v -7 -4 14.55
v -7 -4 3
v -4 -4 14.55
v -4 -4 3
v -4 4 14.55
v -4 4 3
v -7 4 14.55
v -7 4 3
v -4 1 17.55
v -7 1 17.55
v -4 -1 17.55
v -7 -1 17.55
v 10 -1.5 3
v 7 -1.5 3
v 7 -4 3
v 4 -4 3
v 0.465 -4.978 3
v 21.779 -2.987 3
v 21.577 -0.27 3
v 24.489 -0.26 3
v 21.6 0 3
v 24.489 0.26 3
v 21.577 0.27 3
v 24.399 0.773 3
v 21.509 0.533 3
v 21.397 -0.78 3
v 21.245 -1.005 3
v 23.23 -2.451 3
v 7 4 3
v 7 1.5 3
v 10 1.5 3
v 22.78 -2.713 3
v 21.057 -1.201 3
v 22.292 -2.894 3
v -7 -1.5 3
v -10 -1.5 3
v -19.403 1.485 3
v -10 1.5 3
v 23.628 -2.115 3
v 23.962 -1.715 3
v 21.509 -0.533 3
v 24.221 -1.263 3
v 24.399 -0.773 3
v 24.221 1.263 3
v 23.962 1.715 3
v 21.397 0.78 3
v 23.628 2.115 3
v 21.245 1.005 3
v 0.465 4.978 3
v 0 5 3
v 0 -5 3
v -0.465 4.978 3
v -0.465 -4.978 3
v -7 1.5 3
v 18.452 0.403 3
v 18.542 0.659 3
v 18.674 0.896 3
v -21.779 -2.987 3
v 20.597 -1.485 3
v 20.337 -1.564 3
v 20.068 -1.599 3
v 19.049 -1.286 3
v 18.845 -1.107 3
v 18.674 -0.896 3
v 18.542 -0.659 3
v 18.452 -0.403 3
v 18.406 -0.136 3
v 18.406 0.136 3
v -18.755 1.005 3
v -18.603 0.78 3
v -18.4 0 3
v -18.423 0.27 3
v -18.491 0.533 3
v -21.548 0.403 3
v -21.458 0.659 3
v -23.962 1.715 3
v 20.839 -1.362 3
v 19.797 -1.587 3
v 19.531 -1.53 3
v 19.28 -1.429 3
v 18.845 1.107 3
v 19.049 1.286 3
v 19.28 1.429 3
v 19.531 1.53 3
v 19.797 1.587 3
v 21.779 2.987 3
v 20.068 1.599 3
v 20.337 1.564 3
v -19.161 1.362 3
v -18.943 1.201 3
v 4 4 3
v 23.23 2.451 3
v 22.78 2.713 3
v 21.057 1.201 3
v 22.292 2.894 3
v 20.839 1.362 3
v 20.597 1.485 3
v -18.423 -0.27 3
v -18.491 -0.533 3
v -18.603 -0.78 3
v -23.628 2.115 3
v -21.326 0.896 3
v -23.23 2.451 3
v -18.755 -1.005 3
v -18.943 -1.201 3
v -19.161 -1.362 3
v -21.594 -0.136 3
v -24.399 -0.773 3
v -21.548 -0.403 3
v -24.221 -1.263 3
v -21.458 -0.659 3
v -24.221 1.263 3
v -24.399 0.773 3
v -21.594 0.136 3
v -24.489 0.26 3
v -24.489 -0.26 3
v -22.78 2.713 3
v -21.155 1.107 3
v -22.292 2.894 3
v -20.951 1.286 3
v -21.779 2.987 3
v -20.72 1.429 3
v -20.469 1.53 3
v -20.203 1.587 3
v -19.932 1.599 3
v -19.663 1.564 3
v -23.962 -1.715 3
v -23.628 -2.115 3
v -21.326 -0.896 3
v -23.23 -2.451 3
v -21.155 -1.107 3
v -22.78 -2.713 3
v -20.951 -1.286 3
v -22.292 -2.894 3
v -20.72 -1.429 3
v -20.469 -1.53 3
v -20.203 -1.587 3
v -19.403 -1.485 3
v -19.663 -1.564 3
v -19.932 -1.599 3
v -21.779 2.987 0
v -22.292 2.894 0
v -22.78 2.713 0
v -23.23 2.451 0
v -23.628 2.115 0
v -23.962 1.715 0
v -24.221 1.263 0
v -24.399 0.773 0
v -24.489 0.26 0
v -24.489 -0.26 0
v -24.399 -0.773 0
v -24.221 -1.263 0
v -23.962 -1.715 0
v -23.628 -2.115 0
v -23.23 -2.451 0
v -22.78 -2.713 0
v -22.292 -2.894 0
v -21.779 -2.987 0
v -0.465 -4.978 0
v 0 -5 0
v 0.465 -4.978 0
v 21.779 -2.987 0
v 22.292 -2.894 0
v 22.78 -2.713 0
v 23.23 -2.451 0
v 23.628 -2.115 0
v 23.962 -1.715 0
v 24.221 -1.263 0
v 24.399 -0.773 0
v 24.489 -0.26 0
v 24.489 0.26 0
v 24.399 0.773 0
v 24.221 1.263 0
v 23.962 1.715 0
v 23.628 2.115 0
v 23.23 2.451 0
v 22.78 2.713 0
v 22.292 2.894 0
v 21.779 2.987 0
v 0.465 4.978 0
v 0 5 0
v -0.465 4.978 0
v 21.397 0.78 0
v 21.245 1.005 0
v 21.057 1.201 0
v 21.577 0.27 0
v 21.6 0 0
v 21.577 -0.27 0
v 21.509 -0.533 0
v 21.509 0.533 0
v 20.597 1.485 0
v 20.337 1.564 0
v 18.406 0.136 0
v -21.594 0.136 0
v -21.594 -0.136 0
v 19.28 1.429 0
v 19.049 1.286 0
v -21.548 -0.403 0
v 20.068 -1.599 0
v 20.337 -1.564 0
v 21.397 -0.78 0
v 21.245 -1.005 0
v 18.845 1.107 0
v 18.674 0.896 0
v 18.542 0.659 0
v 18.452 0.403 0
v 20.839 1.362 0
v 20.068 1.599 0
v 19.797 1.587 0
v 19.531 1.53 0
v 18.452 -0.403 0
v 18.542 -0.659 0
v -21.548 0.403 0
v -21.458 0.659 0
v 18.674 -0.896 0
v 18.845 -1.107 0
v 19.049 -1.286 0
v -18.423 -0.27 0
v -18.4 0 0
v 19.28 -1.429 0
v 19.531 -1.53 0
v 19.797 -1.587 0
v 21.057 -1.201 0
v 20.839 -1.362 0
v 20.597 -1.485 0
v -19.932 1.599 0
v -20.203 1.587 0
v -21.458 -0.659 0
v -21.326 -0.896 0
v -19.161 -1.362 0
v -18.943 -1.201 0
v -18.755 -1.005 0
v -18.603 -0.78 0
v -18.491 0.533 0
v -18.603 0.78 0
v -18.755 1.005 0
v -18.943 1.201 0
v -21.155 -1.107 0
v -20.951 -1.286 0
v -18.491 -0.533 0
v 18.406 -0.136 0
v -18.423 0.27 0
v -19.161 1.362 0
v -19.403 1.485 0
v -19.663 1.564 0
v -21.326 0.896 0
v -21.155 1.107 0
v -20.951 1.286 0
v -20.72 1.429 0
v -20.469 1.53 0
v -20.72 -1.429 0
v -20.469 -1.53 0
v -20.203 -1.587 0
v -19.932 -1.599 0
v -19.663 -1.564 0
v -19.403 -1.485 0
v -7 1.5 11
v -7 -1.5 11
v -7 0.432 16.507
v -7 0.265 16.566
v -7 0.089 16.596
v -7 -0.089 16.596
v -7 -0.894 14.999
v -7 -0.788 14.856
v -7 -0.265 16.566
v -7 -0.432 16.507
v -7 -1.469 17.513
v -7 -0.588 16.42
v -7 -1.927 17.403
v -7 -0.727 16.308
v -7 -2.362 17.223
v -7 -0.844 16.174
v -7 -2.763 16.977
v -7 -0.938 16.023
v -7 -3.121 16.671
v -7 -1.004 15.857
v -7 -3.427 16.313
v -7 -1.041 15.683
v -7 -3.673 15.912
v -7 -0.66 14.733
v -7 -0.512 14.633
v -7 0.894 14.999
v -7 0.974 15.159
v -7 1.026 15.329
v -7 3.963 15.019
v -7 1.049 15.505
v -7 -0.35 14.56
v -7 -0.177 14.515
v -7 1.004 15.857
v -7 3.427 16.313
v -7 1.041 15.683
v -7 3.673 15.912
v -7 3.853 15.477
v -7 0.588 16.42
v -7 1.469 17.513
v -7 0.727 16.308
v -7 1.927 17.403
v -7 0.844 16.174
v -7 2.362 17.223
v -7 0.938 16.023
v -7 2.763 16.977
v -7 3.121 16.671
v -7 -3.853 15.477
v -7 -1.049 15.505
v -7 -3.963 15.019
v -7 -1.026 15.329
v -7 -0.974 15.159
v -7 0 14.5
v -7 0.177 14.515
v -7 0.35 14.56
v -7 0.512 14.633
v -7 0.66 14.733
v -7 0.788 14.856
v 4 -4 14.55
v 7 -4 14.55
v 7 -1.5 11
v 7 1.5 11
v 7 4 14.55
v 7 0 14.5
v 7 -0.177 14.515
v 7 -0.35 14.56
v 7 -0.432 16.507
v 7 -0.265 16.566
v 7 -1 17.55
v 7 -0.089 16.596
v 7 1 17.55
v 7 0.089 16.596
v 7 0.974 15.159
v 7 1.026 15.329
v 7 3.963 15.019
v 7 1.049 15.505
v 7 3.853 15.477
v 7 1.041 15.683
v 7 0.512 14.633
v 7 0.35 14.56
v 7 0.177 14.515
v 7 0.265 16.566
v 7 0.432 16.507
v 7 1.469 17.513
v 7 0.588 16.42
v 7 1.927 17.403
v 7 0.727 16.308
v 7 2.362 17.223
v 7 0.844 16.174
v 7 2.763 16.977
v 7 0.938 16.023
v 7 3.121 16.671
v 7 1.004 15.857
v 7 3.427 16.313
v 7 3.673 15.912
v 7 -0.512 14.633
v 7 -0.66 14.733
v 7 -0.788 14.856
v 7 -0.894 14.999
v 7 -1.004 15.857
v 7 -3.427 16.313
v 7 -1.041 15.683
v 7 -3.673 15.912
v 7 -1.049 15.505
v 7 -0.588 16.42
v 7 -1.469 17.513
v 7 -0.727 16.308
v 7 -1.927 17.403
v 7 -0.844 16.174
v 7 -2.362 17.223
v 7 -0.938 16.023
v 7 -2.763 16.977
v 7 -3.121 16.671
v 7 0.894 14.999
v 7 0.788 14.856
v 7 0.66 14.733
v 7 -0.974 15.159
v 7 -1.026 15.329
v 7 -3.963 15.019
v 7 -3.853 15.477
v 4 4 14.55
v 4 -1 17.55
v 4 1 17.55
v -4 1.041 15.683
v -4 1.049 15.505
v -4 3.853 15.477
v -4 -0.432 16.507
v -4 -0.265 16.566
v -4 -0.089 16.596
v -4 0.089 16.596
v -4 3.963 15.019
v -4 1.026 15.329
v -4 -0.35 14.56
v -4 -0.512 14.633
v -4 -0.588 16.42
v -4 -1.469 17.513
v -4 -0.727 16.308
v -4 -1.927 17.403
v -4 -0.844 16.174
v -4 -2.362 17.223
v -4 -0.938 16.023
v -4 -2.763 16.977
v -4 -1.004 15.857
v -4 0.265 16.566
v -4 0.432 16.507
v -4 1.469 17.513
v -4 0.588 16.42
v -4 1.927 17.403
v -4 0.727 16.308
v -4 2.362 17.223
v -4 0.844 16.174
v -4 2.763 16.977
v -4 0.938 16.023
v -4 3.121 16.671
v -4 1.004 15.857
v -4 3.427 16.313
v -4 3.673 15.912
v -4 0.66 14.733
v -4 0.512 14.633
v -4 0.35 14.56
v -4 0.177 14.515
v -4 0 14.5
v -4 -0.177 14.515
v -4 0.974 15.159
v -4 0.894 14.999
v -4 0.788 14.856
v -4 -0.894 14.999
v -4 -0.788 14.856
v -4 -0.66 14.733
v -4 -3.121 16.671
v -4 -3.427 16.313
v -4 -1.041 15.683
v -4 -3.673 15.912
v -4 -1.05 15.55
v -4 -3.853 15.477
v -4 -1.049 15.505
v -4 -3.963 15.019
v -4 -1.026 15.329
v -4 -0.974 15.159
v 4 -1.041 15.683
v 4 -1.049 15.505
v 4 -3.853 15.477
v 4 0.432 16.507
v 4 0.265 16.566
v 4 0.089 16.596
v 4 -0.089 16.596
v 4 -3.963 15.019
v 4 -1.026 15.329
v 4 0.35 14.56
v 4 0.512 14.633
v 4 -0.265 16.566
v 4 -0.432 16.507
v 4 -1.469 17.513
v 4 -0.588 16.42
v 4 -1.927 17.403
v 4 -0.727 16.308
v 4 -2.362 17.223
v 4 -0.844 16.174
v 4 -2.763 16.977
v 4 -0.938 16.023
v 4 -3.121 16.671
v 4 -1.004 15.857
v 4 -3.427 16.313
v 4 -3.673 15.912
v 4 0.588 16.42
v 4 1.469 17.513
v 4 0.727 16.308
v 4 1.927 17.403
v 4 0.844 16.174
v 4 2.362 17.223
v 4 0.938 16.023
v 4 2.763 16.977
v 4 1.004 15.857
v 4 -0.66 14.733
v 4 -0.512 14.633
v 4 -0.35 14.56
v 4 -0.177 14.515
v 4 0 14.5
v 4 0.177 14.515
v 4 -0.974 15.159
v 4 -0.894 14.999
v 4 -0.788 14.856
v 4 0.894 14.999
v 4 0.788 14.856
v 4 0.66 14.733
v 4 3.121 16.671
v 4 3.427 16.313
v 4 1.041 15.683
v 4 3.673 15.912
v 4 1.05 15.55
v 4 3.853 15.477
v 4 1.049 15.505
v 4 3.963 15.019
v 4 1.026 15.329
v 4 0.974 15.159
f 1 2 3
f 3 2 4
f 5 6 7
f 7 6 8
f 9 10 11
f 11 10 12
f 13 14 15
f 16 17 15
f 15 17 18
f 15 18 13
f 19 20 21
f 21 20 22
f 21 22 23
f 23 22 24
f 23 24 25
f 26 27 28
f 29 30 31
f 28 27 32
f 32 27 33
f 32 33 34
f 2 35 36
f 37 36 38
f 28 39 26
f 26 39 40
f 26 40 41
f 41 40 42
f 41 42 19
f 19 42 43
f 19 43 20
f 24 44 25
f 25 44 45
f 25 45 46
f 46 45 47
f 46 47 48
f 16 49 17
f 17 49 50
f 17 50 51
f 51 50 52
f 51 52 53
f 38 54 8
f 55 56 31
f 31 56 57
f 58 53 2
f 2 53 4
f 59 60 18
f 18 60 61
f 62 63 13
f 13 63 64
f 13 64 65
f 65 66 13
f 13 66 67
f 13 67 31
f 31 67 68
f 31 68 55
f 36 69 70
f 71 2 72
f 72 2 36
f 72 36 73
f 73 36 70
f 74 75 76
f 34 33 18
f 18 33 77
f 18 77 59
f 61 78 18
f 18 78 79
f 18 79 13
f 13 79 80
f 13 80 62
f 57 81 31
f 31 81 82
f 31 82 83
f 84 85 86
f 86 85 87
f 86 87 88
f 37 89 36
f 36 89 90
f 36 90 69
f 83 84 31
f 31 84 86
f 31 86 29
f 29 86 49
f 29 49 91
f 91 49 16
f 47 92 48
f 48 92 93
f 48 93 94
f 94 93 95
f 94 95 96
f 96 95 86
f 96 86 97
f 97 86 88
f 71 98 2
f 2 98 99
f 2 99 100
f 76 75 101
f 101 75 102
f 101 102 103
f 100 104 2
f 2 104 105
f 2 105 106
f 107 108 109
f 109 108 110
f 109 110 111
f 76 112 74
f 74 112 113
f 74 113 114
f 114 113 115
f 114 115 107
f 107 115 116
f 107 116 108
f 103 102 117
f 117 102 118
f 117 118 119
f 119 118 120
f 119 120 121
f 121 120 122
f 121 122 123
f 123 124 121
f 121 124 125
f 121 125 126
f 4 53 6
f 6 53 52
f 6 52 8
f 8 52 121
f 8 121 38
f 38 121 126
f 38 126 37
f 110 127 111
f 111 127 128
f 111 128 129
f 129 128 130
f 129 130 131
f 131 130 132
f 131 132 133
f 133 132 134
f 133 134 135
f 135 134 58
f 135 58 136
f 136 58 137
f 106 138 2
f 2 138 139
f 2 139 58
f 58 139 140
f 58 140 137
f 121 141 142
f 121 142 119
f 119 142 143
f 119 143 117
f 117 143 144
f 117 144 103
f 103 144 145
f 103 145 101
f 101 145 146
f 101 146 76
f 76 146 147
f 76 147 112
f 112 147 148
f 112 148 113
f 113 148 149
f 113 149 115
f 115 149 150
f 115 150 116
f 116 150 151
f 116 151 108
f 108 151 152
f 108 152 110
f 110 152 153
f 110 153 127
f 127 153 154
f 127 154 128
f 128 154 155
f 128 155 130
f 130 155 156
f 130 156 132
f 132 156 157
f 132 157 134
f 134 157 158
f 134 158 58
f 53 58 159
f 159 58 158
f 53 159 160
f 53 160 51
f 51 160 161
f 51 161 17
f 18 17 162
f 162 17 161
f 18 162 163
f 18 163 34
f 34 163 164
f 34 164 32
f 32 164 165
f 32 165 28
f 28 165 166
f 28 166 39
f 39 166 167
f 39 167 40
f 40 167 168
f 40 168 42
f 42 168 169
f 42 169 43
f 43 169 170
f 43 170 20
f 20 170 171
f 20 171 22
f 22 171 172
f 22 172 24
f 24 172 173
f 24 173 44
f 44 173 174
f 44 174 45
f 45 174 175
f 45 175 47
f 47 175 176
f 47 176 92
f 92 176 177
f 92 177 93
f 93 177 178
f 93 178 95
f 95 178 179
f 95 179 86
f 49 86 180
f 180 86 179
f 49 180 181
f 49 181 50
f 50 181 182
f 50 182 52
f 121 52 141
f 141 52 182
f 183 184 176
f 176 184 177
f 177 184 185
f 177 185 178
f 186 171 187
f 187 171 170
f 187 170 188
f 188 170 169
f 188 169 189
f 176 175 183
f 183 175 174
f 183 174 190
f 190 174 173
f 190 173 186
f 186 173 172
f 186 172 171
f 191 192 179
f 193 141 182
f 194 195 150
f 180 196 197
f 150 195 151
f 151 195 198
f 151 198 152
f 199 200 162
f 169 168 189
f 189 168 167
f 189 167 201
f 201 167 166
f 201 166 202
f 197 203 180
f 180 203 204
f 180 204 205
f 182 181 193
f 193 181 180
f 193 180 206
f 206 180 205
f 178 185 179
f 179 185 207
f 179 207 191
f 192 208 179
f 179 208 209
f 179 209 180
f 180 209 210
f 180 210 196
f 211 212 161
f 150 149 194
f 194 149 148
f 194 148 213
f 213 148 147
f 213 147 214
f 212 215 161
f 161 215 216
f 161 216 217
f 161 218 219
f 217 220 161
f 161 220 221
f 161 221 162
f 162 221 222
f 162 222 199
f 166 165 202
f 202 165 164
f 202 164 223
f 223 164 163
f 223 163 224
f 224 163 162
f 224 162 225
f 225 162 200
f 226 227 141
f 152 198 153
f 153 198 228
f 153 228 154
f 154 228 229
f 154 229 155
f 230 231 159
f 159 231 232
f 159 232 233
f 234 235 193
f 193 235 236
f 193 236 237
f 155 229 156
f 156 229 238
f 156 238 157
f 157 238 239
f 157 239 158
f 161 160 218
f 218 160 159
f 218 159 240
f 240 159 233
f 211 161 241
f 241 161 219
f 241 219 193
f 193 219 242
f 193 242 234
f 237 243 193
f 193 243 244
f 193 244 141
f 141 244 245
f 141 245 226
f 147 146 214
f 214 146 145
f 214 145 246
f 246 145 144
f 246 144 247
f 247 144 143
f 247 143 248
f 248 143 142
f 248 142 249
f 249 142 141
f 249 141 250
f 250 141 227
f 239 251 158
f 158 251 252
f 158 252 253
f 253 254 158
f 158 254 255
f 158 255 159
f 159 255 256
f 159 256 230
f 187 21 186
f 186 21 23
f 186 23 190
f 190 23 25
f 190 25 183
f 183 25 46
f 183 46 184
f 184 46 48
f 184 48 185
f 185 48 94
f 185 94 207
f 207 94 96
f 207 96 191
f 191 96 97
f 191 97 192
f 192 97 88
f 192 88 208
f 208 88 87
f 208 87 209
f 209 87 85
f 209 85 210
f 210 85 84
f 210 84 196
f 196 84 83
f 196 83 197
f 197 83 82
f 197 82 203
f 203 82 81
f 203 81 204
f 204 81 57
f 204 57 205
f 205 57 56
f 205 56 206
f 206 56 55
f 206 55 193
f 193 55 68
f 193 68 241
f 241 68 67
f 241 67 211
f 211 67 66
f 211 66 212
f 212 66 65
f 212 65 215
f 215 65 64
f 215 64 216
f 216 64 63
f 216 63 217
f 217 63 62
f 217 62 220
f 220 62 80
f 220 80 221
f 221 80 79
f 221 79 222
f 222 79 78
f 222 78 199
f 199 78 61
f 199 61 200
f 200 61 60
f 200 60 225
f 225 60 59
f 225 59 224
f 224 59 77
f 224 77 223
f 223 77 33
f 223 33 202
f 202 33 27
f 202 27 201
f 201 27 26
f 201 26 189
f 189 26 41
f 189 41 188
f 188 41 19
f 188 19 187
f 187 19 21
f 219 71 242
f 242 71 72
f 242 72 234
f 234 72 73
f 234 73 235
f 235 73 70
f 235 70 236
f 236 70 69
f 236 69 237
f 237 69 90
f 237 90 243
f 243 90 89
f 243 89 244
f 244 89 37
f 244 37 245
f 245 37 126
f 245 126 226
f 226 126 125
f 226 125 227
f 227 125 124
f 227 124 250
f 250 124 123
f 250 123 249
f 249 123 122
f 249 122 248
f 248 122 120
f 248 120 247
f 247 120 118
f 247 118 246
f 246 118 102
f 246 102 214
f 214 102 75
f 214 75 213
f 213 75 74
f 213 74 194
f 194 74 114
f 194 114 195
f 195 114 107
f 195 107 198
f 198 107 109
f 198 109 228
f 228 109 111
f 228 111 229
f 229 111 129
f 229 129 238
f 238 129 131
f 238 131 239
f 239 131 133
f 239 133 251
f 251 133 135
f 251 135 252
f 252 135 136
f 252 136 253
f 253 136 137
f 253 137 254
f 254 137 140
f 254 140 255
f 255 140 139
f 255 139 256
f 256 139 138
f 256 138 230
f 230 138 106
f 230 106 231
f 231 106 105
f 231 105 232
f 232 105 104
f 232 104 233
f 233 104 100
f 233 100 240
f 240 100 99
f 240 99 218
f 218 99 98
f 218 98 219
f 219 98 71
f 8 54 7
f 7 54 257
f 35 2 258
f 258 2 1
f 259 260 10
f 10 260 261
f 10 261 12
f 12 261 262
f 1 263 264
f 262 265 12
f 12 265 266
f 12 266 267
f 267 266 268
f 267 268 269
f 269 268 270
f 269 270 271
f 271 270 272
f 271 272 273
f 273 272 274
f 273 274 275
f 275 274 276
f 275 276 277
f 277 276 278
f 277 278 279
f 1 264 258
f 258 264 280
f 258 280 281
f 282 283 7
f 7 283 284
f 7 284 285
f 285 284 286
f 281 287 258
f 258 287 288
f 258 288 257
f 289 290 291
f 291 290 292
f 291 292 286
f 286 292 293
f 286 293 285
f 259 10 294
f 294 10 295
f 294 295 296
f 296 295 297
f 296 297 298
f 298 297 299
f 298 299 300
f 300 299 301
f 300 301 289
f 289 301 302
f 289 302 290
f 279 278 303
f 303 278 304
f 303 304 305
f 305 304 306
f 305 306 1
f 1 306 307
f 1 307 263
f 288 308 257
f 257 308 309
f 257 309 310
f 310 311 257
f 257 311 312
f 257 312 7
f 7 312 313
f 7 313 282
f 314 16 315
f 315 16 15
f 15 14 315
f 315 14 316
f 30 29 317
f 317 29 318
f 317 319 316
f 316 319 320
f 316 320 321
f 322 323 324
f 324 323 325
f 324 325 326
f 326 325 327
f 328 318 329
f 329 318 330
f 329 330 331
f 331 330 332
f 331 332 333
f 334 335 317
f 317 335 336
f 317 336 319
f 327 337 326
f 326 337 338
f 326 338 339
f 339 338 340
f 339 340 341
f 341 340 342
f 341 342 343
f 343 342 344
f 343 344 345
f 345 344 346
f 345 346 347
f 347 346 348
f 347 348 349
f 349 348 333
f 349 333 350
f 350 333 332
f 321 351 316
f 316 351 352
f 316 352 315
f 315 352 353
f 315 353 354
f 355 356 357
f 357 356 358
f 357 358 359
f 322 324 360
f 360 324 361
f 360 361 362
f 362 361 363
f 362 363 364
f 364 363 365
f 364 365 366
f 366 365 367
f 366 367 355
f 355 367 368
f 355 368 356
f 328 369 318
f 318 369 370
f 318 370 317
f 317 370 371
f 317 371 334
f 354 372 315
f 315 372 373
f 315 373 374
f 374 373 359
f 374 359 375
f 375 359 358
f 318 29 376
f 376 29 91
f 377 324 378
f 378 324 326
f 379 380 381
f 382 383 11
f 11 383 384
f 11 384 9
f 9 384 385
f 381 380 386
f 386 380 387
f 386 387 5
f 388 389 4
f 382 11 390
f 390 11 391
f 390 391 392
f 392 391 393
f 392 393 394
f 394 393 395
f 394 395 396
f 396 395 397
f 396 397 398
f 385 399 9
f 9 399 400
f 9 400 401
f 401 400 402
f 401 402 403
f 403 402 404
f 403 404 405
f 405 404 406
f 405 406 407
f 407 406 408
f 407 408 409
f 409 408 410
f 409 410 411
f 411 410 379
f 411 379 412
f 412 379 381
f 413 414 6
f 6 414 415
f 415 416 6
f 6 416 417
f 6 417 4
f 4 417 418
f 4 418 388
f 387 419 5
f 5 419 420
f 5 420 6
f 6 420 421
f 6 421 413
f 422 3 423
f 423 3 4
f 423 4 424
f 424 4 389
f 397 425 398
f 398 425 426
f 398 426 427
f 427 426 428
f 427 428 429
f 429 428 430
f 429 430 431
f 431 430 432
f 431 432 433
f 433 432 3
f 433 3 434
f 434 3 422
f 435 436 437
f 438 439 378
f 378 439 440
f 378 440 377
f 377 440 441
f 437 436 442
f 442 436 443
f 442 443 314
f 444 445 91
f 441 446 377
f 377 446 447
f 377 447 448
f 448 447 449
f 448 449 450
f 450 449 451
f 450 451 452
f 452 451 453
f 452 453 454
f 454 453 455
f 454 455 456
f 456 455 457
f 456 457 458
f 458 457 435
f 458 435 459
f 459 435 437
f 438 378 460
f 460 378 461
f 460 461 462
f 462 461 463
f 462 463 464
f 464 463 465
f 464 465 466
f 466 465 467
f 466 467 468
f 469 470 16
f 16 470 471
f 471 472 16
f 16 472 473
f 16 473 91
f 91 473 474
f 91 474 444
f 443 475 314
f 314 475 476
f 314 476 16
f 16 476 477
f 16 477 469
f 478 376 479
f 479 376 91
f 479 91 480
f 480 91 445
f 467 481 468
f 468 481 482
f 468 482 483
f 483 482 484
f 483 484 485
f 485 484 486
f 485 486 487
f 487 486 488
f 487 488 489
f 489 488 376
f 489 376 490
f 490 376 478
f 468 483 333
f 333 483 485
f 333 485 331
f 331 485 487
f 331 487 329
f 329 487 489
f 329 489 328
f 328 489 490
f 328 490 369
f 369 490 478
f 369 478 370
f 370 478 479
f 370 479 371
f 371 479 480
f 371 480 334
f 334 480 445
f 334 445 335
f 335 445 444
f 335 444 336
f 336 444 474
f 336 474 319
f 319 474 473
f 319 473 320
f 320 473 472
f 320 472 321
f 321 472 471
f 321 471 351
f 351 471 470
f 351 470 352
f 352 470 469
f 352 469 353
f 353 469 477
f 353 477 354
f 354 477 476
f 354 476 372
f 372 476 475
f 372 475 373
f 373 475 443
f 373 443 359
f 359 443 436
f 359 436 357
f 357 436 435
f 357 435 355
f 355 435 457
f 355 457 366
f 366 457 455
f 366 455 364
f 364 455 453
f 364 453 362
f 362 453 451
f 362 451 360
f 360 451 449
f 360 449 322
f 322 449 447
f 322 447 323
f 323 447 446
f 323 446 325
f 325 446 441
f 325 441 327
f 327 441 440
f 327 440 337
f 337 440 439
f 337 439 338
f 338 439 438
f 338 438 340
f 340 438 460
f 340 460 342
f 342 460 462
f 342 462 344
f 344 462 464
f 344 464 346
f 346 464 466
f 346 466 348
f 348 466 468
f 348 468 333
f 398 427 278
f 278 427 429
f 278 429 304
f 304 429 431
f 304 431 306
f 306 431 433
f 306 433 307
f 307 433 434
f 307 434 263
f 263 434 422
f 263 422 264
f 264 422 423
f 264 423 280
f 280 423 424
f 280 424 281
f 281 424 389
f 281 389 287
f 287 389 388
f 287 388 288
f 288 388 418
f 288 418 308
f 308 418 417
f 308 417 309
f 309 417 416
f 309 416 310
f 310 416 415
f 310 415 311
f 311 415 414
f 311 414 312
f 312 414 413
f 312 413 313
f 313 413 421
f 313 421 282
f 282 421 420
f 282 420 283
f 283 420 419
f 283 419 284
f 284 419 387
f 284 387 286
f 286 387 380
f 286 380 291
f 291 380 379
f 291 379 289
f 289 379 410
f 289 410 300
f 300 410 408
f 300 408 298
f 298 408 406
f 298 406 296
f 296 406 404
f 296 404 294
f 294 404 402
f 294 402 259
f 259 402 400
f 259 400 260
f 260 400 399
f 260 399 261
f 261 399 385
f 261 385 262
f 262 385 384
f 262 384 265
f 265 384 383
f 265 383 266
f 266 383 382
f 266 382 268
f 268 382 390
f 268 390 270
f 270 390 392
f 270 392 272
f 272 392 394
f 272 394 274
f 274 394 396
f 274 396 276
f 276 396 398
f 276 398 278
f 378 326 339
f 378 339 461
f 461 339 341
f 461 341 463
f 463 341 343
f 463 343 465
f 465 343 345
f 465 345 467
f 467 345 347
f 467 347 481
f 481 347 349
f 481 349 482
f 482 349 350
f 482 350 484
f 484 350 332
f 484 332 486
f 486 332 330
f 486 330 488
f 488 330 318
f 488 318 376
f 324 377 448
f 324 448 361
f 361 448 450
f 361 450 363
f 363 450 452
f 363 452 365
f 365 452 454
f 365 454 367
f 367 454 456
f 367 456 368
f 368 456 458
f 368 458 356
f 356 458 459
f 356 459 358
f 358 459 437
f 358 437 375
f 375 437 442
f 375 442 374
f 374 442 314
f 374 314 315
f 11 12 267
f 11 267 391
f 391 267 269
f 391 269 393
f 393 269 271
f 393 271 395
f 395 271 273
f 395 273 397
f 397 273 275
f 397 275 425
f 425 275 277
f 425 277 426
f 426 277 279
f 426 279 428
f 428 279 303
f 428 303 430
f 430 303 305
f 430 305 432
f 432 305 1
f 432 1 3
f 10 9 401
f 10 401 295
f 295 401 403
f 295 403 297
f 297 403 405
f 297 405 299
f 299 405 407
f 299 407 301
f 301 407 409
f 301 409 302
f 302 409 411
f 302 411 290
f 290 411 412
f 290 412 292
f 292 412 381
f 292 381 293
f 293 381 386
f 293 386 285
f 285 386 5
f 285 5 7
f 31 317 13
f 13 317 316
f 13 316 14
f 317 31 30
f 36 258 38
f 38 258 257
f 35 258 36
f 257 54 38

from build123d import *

# Parameters (mm, degrees)
EXTRUDE_1_DEPTH     = 3
SKETCH_2_R          = 1.6
CUT_EXTRUDE_1_DEPTH = 26.184320519
SKETCH_4_W          = 14
SKETCH_4_H          = 8
EXTRUDE_2_DEPTH     = 14.55
SKETCH_5_W          = 8
SKETCH_5_H          = 14.55
CUT_EXTRUDE_2_DEPTH = 32.452384647
SKETCH_6_R          = 1.05
CUT_EXTRUDE_3_DEPTH = 37.404017635
FILLET_1_R          = 3
RIB_1_REACH         = 32.549
SKETCH_7_WALL_W     = 71.642367062
SKETCH_7_WALL_H     = 3
RIB_2_REACH         = 32.549
SKETCH_8_WALL_W     = 71.642367062
SKETCH_8_WALL_H     = 3


with BuildPart() as part:
    # 草图1 → 凸台-拉伸1 (new body)
    with BuildSketch(Plane.XY):
        with BuildLine():
            Line((-21.779069767, 2.986991809), (-0.465116279, 4.978319681))
            ThreePointArc((-0.465116279, 4.978319681), (0, 5), (0.465116279, 4.978319681))
            Line((0.465116279, 4.978319681), (21.779069767, 2.986991809))
            ThreePointArc((21.779069767, 2.986991809), (24.5, 0), (21.779069767, -2.986991809))
            Line((21.779069767, -2.986991809), (0.465116279, -4.978319681))
            ThreePointArc((0.465116279, -4.978319681), (0, -5), (-0.465116279, -4.978319681))
            Line((-0.465116279, -4.978319681), (-21.779069767, -2.986991809))
            ThreePointArc((-21.779069767, -2.986991809), (-24.5, 0), (-21.779069767, 2.986991809))
        make_face()
    extrude(amount=EXTRUDE_1_DEPTH)

    # 草图2 → 切除-拉伸1 (cut, through all)
    with BuildSketch(Plane.XY.offset(3)):
        with Locations((-20, 0)):
            Circle(SKETCH_2_R)
        with Locations((20, 0)):
            Circle(SKETCH_2_R)
    extrude(amount=-CUT_EXTRUDE_1_DEPTH, mode=Mode.SUBTRACT)

    # 草图4 → 凸台-拉伸2 (add)
    with BuildSketch(Plane.XY.offset(3)):
        Rectangle(SKETCH_4_W, SKETCH_4_H)
    extrude(amount=EXTRUDE_2_DEPTH)

    # 草图5 → 切除-拉伸2 (cut, through all)
    with BuildSketch(Plane(origin=(0, 4, 0), x_dir=(1, 0, 0), z_dir=(0, 1, 0))):
        with Locations((0, -10.275)):
            Rectangle(SKETCH_5_W, SKETCH_5_H)
    extrude(amount=-CUT_EXTRUDE_2_DEPTH, mode=Mode.SUBTRACT)

    # 草图6 → 切除-拉伸3 (cut, through all)
    with BuildSketch(Plane(origin=(7, 0, 0), x_dir=(0, 0, -1), z_dir=(1, 0, 0))):
        with Locations((-15.55, 0)):
            Circle(SKETCH_6_R)
    extrude(amount=-CUT_EXTRUDE_3_DEPTH, mode=Mode.SUBTRACT)

    # 圆角1
    fillet_1_edges = [part.edges().sort_by_distance(p)[0] for p in [
        (-5.5, -4, 17.55),
        (5.5, 4, 17.55),
        (5.5, -4, 17.55),
        (-5.5, 4, 17.55),
    ]]
    fillet(fillet_1_edges, radius=FILLET_1_R)

    # 草图7 wall → 筋1 (add, up to next)
    with BuildSketch(Plane(origin=(8.5, 0, 7), x_dir=(-0.351123441588, 0, 0.936329177569), z_dir=(0.936329177569, 0, 0.351123441588)), mode=Mode.PRIVATE) as rib_1_sk1:
        Rectangle(SKETCH_7_WALL_W, SKETCH_7_WALL_H)
    rib_1_tool1 = extrude(rib_1_sk1.sketch, amount=-RIB_1_REACH, mode=Mode.PRIVATE) - part.part
    add(rib_1_tool1.solids().sort_by_distance((8.5, 0, 7))[0])

    # 草图8 wall → 筋2 (add, up to next)
    with BuildSketch(Plane(origin=(-8.5, 0, 7), x_dir=(0.351123441588, 0, 0.936329177569), z_dir=(0.936329177569, 0, -0.351123441588)), mode=Mode.PRIVATE) as rib_2_sk1:
        Rectangle(SKETCH_8_WALL_W, SKETCH_8_WALL_H)
    rib_2_tool1 = extrude(rib_2_sk1.sketch, amount=RIB_2_REACH, mode=Mode.PRIVATE) - part.part
    add(rib_2_tool1.solids().sort_by_distance((-8.5, 0, 7))[0])


solid = part.part
